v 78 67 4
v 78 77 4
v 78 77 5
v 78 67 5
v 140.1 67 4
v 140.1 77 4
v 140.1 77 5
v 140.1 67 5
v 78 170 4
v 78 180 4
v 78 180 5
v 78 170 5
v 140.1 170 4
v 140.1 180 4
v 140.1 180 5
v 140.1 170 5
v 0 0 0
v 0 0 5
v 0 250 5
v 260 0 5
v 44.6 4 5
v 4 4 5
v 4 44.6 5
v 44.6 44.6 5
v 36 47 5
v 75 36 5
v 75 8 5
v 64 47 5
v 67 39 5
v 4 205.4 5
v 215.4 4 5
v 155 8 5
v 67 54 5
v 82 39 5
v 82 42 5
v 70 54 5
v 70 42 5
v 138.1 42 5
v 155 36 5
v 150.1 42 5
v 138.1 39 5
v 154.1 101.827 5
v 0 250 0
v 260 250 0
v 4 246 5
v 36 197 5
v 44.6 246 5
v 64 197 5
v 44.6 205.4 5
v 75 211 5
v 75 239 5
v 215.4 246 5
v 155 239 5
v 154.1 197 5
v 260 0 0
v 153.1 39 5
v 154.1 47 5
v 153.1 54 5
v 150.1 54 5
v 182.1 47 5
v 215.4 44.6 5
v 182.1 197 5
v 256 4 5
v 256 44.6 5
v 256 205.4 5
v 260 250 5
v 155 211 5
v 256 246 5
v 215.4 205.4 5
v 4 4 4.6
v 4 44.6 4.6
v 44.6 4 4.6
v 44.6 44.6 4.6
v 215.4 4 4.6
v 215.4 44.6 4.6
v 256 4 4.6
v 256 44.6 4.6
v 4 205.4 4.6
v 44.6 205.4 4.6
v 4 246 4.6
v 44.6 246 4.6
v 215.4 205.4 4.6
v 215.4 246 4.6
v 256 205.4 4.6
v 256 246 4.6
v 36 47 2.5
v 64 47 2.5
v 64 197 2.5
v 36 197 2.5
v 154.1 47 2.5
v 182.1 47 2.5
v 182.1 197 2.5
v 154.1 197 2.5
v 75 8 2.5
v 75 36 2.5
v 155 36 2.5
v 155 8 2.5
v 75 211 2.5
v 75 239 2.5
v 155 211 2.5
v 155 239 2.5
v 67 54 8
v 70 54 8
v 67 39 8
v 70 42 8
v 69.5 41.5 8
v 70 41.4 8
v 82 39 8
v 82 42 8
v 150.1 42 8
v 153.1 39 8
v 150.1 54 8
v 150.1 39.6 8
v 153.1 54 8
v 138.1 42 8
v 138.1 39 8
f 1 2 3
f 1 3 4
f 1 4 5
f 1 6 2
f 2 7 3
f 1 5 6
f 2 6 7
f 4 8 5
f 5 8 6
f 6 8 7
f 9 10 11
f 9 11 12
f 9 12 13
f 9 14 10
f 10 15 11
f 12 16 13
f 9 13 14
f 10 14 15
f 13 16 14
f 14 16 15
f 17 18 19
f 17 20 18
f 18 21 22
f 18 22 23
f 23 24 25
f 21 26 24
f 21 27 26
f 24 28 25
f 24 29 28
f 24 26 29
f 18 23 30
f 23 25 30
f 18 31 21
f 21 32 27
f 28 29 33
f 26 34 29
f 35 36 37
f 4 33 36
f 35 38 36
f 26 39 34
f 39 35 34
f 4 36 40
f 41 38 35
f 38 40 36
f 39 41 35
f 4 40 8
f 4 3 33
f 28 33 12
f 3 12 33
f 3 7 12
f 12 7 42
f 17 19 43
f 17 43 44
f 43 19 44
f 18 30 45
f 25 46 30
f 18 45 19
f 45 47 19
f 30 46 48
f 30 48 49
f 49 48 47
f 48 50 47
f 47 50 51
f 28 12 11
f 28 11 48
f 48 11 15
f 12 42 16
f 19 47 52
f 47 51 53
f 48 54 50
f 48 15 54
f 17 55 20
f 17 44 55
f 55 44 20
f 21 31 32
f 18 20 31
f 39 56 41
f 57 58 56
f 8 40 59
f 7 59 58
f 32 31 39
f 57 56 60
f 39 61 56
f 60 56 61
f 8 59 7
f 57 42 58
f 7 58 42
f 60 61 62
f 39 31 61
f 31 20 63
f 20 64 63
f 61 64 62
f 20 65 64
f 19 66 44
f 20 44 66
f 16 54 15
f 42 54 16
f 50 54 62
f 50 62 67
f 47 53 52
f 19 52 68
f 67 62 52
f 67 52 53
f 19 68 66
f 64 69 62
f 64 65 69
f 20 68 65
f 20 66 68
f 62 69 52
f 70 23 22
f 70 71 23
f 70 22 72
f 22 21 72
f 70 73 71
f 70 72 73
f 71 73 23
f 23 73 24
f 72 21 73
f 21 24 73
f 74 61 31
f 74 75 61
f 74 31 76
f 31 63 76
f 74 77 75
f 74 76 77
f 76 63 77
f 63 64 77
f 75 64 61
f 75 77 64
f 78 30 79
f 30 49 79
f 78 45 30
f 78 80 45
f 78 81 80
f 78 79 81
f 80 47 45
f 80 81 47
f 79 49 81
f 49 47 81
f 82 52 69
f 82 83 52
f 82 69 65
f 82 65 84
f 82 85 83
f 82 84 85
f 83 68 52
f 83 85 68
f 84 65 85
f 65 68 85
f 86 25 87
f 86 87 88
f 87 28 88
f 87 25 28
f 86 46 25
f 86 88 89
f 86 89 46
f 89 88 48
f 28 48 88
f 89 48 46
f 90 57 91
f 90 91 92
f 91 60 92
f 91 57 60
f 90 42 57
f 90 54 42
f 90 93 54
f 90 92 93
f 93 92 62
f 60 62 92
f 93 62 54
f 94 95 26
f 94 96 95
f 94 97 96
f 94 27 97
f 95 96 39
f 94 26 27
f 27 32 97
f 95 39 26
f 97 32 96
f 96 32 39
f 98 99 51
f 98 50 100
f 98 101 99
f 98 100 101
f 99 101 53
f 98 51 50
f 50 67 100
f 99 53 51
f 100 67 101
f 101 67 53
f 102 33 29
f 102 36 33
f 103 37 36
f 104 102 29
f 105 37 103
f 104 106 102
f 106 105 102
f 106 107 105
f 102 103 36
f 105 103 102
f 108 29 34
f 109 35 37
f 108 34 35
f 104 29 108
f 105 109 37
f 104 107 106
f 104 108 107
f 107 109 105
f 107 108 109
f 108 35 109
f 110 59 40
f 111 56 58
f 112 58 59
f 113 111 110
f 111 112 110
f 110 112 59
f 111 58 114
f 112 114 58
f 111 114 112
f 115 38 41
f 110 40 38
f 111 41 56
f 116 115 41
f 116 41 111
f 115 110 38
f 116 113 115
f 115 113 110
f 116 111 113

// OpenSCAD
// Berço da cabine A — paramétrico (guia 10.1).
// Exportar:  openscad -D 'peca="berco"' -o berco.stl berco.scad
//            openscad -D 'peca="suporte_espelho"' -o suporte_espelho.stl berco.scad
//            openscad -D 'peca="suporte_led"' -o suporte_led.stl berco.scad
// Unidades: mm. Imprimir em PLA/PETG preto fosco.

/* [Peça] */
peca = "berco"; // [berco, suporte_espelho, suporte_led, montagem]

/* [Placa] */
placa_largura   = 260;  // eixo X (lado curto do aparelho fica em X)
placa_profund   = 250;  // eixo Y: aparelho (≤ 163) + espelhos de topo e base
placa_espessura = 5;

/* [Aparelho] — o maior modelo atendido define as folgas */
aparelho_larg_max = 78.1;   // iPhone 12/13/14 Plus/Pro Max
aparelho_alt_max  = 163.0;  // iPhone 16 Pro Max
origem_x = 70;              // quina topo/lado do volume encosta aqui
origem_y = 42;              // deixa espaço para o espelho do topo

/* [Batente] — só nas quinas: um L contínuo esconderia a base das laterais nos espelhos */
batente_altura   = 3;     // ≤ 3 mm: não faz sombra na luz rasante (guia 10.1)
batente_espessura = 3;
batente_braco    = 12;    // comprimento de cada braço do L na quina

/* [Marcadores ArUco] — 30 mm de preto + 5 mm de margem branca (folha impressa) */
aruco_lado   = 30;
aruco_margem = 5;
aruco_rebaixo = 0.4;      // espessura do papel/adesivo

/* [Feltro nas áreas de apoio] */
feltro_rebaixo = 1.0;
feltro_largura = 10;

/* [Espelhos 45° (D3 = espelhos)] */
espelho_largura = 12;     // faixa refletora: 12 × sin 45° ≈ 8,5 mm cobre a espessura (≤ 8,3 mm).
                          // NÃO aumentar sem testar: a cunha fica entre a barra rasante e o
                          // aparelho; mais alta que ~8–9 mm, faz sombra na tela (ver README).
espelho_compr   = 170;    // laterais; topo/base usam espelho_compr_curto
espelho_compr_curto = 90;
espelho_espessura = 3;    // espelho de primeira superfície (evita imagem dupla)
trilho_largura  = 8;
trilho_profund  = 2.5;
trilho_curso    = 20;     // ajuste da distância espelho–aparelho

/* [Barras de LED] */
led_altura_eixo = 15;     // centro da barra a 1–2 cm da mesa (guia 10.1)
led_perfil_larg = 17;     // perfil de alumínio com difusor (medir o comprado)
led_perfil_alt  = 8;

$fn = 48;
folga = 0.3;

// ------------------------------------------------------------------ placa

module bolsao_aruco(x, y) {
    l = aruco_lado + 2 * aruco_margem + 2 * folga;
    translate([x, y, placa_espessura - aruco_rebaixo]) cube([l, l, aruco_rebaixo + 0.01]);
}

module batente_quina(x, y, sx, sy) {
    // L com braços apontando para +sx e +sy a partir da quina (x, y)
    translate([x, y, placa_espessura]) {
        translate([sx > 0 ? -batente_espessura : 0, sy > 0 ? -batente_espessura : -batente_braco, 0])
            cube([batente_espessura, batente_braco + batente_espessura, batente_altura]);
        translate([sx > 0 ? -batente_espessura : -batente_braco, sy > 0 ? -batente_espessura : 0, 0])
            cube([batente_braco + batente_espessura, batente_espessura, batente_altura]);
    }
}

module trilho(x, y, comp, ao_longo_x) {
    translate([x, y, placa_espessura - trilho_profund])
        if (ao_longo_x) cube([comp, trilho_largura + trilho_curso, trilho_profund + 0.01]);
        else cube([trilho_largura + trilho_curso, comp, trilho_profund + 0.01]);
}

module berco() {
    difference() {
        cube([placa_largura, placa_profund, placa_espessura]);
        // feltro: duas faixas sob o aparelho (apoio sem riscar)
        for (fy = [origem_y + 25, origem_y + aparelho_alt_max - 25 - feltro_largura])
            translate([origem_x + 8, fy, placa_espessura - feltro_rebaixo])
                cube([aparelho_larg_max - 16, feltro_largura, feltro_rebaixo + 0.01]);
        // marcadores nos 4 cantos da placa, fora da área do aparelho e dos espelhos
        a = aruco_lado + 2 * aruco_margem;
        bolsao_aruco(4, 4);
        bolsao_aruco(placa_largura - a - 4 - 2 * folga, 4);
        bolsao_aruco(4, placa_profund - a - 4 - 2 * folga);
        bolsao_aruco(placa_largura - a - 4 - 2 * folga, placa_profund - a - 4 - 2 * folga);
        // trilhos dos espelhos: lat_esq (x−), lat_dir (x+), topo (y−) e base (y+)
        dx = 6 + trilho_largura + trilho_curso;   // da borda do aparelho até o fim do trilho
        trilho(origem_x - dx, origem_y + 5, espelho_compr - 20, false);
        trilho(origem_x + aparelho_larg_max + 6, origem_y + 5, espelho_compr - 20, false);
        trilho(origem_x + 5, origem_y - dx, espelho_compr_curto - 10, true);
        trilho(origem_x + 5, origem_y + aparelho_alt_max + 6, espelho_compr_curto - 10, true);
    }
    // batentes nas duas quinas do lado de origem (topo/lado do volume)
    batente_quina(origem_x, origem_y, 1, 1);
    batente_quina(origem_x + aparelho_larg_max + 2, origem_y, -1, 1);
}

// ------------------------------------------------------------------ peças avulsas

module suporte_espelho(comp = espelho_compr) {
    // cunha a 45° com rebaixo para o espelho e uma aleta que corre no trilho
    h = espelho_largura * sin(45) + 1;  // altura da cunha = topo do espelho + 1 mm
    difference() {
        union() {
            rotate([90, 0, 90]) linear_extrude(comp) polygon([[0, 0], [h, 0], [0, h]]);
            translate([0, 0, -trilho_profund + folga]) cube([comp, trilho_largura - 2 * folga, trilho_profund - folga]);
        }
        // assento do espelho na face inclinada
        translate([-0.01, 0, 0]) rotate([45, 0, 0]) translate([0, 1.5, -espelho_espessura + 0.01])
            cube([comp + 0.02, espelho_largura + 2 * folga, espelho_espessura + 0.01]);
    }
}

module suporte_led() {
    // garra para o perfil da barra de LED, eixo a led_altura_eixo da mesa
    base = 30;
    difference() {
        union() {
            cube([base, 20, 3]);
            translate([0, 0, 0]) cube([4, 20, led_altura_eixo + led_perfil_alt / 2 + 3]);
        }
        translate([-0.01, (20 - led_perfil_larg) / 2, led_altura_eixo - led_perfil_alt / 2])
            cube([4.02, led_perfil_larg + 2 * folga, led_perfil_alt + 2 * folga]);
        translate([base - 8, 10, -0.01]) cylinder(d = 4.2, h = 3.02); // parafuso na mesa
    }
}

// ------------------------------------------------------------------ seleção

if (peca == "berco") berco();
else if (peca == "suporte_espelho") suporte_espelho();
else if (peca == "suporte_led") suporte_led();
else if (peca == "montagem") {
    // prévia: iPhone 13 encostado nas quinas, espelhos a 6 mm das bordas
    ap = [71.5, 146.7, 7.65];
    h = espelho_largura * sin(45) + 1;  // largura da cunha no chão
    berco();
    color("gray", 0.5) translate([origem_x, origem_y, placa_espessura]) cube(ap);
    color("silver") {
        // a face inclinada aponta para o aparelho
        translate([origem_x - 6 - h, origem_y + 5 + espelho_compr - 20, placa_espessura])
            rotate([0, 0, -90]) suporte_espelho(espelho_compr - 20);
        translate([origem_x + ap[0] + 6 + h, origem_y + 5, placa_espessura])
            rotate([0, 0, 90]) suporte_espelho(espelho_compr - 20);
        translate([origem_x + 5, origem_y - 6 - h, placa_espessura]) suporte_espelho(espelho_compr_curto - 10);
        translate([origem_x + 5 + espelho_compr_curto - 10, origem_y + ap[1] + 6 + h, placa_espessura])
            rotate([0, 0, 180]) suporte_espelho(espelho_compr_curto - 10);
    }
}
